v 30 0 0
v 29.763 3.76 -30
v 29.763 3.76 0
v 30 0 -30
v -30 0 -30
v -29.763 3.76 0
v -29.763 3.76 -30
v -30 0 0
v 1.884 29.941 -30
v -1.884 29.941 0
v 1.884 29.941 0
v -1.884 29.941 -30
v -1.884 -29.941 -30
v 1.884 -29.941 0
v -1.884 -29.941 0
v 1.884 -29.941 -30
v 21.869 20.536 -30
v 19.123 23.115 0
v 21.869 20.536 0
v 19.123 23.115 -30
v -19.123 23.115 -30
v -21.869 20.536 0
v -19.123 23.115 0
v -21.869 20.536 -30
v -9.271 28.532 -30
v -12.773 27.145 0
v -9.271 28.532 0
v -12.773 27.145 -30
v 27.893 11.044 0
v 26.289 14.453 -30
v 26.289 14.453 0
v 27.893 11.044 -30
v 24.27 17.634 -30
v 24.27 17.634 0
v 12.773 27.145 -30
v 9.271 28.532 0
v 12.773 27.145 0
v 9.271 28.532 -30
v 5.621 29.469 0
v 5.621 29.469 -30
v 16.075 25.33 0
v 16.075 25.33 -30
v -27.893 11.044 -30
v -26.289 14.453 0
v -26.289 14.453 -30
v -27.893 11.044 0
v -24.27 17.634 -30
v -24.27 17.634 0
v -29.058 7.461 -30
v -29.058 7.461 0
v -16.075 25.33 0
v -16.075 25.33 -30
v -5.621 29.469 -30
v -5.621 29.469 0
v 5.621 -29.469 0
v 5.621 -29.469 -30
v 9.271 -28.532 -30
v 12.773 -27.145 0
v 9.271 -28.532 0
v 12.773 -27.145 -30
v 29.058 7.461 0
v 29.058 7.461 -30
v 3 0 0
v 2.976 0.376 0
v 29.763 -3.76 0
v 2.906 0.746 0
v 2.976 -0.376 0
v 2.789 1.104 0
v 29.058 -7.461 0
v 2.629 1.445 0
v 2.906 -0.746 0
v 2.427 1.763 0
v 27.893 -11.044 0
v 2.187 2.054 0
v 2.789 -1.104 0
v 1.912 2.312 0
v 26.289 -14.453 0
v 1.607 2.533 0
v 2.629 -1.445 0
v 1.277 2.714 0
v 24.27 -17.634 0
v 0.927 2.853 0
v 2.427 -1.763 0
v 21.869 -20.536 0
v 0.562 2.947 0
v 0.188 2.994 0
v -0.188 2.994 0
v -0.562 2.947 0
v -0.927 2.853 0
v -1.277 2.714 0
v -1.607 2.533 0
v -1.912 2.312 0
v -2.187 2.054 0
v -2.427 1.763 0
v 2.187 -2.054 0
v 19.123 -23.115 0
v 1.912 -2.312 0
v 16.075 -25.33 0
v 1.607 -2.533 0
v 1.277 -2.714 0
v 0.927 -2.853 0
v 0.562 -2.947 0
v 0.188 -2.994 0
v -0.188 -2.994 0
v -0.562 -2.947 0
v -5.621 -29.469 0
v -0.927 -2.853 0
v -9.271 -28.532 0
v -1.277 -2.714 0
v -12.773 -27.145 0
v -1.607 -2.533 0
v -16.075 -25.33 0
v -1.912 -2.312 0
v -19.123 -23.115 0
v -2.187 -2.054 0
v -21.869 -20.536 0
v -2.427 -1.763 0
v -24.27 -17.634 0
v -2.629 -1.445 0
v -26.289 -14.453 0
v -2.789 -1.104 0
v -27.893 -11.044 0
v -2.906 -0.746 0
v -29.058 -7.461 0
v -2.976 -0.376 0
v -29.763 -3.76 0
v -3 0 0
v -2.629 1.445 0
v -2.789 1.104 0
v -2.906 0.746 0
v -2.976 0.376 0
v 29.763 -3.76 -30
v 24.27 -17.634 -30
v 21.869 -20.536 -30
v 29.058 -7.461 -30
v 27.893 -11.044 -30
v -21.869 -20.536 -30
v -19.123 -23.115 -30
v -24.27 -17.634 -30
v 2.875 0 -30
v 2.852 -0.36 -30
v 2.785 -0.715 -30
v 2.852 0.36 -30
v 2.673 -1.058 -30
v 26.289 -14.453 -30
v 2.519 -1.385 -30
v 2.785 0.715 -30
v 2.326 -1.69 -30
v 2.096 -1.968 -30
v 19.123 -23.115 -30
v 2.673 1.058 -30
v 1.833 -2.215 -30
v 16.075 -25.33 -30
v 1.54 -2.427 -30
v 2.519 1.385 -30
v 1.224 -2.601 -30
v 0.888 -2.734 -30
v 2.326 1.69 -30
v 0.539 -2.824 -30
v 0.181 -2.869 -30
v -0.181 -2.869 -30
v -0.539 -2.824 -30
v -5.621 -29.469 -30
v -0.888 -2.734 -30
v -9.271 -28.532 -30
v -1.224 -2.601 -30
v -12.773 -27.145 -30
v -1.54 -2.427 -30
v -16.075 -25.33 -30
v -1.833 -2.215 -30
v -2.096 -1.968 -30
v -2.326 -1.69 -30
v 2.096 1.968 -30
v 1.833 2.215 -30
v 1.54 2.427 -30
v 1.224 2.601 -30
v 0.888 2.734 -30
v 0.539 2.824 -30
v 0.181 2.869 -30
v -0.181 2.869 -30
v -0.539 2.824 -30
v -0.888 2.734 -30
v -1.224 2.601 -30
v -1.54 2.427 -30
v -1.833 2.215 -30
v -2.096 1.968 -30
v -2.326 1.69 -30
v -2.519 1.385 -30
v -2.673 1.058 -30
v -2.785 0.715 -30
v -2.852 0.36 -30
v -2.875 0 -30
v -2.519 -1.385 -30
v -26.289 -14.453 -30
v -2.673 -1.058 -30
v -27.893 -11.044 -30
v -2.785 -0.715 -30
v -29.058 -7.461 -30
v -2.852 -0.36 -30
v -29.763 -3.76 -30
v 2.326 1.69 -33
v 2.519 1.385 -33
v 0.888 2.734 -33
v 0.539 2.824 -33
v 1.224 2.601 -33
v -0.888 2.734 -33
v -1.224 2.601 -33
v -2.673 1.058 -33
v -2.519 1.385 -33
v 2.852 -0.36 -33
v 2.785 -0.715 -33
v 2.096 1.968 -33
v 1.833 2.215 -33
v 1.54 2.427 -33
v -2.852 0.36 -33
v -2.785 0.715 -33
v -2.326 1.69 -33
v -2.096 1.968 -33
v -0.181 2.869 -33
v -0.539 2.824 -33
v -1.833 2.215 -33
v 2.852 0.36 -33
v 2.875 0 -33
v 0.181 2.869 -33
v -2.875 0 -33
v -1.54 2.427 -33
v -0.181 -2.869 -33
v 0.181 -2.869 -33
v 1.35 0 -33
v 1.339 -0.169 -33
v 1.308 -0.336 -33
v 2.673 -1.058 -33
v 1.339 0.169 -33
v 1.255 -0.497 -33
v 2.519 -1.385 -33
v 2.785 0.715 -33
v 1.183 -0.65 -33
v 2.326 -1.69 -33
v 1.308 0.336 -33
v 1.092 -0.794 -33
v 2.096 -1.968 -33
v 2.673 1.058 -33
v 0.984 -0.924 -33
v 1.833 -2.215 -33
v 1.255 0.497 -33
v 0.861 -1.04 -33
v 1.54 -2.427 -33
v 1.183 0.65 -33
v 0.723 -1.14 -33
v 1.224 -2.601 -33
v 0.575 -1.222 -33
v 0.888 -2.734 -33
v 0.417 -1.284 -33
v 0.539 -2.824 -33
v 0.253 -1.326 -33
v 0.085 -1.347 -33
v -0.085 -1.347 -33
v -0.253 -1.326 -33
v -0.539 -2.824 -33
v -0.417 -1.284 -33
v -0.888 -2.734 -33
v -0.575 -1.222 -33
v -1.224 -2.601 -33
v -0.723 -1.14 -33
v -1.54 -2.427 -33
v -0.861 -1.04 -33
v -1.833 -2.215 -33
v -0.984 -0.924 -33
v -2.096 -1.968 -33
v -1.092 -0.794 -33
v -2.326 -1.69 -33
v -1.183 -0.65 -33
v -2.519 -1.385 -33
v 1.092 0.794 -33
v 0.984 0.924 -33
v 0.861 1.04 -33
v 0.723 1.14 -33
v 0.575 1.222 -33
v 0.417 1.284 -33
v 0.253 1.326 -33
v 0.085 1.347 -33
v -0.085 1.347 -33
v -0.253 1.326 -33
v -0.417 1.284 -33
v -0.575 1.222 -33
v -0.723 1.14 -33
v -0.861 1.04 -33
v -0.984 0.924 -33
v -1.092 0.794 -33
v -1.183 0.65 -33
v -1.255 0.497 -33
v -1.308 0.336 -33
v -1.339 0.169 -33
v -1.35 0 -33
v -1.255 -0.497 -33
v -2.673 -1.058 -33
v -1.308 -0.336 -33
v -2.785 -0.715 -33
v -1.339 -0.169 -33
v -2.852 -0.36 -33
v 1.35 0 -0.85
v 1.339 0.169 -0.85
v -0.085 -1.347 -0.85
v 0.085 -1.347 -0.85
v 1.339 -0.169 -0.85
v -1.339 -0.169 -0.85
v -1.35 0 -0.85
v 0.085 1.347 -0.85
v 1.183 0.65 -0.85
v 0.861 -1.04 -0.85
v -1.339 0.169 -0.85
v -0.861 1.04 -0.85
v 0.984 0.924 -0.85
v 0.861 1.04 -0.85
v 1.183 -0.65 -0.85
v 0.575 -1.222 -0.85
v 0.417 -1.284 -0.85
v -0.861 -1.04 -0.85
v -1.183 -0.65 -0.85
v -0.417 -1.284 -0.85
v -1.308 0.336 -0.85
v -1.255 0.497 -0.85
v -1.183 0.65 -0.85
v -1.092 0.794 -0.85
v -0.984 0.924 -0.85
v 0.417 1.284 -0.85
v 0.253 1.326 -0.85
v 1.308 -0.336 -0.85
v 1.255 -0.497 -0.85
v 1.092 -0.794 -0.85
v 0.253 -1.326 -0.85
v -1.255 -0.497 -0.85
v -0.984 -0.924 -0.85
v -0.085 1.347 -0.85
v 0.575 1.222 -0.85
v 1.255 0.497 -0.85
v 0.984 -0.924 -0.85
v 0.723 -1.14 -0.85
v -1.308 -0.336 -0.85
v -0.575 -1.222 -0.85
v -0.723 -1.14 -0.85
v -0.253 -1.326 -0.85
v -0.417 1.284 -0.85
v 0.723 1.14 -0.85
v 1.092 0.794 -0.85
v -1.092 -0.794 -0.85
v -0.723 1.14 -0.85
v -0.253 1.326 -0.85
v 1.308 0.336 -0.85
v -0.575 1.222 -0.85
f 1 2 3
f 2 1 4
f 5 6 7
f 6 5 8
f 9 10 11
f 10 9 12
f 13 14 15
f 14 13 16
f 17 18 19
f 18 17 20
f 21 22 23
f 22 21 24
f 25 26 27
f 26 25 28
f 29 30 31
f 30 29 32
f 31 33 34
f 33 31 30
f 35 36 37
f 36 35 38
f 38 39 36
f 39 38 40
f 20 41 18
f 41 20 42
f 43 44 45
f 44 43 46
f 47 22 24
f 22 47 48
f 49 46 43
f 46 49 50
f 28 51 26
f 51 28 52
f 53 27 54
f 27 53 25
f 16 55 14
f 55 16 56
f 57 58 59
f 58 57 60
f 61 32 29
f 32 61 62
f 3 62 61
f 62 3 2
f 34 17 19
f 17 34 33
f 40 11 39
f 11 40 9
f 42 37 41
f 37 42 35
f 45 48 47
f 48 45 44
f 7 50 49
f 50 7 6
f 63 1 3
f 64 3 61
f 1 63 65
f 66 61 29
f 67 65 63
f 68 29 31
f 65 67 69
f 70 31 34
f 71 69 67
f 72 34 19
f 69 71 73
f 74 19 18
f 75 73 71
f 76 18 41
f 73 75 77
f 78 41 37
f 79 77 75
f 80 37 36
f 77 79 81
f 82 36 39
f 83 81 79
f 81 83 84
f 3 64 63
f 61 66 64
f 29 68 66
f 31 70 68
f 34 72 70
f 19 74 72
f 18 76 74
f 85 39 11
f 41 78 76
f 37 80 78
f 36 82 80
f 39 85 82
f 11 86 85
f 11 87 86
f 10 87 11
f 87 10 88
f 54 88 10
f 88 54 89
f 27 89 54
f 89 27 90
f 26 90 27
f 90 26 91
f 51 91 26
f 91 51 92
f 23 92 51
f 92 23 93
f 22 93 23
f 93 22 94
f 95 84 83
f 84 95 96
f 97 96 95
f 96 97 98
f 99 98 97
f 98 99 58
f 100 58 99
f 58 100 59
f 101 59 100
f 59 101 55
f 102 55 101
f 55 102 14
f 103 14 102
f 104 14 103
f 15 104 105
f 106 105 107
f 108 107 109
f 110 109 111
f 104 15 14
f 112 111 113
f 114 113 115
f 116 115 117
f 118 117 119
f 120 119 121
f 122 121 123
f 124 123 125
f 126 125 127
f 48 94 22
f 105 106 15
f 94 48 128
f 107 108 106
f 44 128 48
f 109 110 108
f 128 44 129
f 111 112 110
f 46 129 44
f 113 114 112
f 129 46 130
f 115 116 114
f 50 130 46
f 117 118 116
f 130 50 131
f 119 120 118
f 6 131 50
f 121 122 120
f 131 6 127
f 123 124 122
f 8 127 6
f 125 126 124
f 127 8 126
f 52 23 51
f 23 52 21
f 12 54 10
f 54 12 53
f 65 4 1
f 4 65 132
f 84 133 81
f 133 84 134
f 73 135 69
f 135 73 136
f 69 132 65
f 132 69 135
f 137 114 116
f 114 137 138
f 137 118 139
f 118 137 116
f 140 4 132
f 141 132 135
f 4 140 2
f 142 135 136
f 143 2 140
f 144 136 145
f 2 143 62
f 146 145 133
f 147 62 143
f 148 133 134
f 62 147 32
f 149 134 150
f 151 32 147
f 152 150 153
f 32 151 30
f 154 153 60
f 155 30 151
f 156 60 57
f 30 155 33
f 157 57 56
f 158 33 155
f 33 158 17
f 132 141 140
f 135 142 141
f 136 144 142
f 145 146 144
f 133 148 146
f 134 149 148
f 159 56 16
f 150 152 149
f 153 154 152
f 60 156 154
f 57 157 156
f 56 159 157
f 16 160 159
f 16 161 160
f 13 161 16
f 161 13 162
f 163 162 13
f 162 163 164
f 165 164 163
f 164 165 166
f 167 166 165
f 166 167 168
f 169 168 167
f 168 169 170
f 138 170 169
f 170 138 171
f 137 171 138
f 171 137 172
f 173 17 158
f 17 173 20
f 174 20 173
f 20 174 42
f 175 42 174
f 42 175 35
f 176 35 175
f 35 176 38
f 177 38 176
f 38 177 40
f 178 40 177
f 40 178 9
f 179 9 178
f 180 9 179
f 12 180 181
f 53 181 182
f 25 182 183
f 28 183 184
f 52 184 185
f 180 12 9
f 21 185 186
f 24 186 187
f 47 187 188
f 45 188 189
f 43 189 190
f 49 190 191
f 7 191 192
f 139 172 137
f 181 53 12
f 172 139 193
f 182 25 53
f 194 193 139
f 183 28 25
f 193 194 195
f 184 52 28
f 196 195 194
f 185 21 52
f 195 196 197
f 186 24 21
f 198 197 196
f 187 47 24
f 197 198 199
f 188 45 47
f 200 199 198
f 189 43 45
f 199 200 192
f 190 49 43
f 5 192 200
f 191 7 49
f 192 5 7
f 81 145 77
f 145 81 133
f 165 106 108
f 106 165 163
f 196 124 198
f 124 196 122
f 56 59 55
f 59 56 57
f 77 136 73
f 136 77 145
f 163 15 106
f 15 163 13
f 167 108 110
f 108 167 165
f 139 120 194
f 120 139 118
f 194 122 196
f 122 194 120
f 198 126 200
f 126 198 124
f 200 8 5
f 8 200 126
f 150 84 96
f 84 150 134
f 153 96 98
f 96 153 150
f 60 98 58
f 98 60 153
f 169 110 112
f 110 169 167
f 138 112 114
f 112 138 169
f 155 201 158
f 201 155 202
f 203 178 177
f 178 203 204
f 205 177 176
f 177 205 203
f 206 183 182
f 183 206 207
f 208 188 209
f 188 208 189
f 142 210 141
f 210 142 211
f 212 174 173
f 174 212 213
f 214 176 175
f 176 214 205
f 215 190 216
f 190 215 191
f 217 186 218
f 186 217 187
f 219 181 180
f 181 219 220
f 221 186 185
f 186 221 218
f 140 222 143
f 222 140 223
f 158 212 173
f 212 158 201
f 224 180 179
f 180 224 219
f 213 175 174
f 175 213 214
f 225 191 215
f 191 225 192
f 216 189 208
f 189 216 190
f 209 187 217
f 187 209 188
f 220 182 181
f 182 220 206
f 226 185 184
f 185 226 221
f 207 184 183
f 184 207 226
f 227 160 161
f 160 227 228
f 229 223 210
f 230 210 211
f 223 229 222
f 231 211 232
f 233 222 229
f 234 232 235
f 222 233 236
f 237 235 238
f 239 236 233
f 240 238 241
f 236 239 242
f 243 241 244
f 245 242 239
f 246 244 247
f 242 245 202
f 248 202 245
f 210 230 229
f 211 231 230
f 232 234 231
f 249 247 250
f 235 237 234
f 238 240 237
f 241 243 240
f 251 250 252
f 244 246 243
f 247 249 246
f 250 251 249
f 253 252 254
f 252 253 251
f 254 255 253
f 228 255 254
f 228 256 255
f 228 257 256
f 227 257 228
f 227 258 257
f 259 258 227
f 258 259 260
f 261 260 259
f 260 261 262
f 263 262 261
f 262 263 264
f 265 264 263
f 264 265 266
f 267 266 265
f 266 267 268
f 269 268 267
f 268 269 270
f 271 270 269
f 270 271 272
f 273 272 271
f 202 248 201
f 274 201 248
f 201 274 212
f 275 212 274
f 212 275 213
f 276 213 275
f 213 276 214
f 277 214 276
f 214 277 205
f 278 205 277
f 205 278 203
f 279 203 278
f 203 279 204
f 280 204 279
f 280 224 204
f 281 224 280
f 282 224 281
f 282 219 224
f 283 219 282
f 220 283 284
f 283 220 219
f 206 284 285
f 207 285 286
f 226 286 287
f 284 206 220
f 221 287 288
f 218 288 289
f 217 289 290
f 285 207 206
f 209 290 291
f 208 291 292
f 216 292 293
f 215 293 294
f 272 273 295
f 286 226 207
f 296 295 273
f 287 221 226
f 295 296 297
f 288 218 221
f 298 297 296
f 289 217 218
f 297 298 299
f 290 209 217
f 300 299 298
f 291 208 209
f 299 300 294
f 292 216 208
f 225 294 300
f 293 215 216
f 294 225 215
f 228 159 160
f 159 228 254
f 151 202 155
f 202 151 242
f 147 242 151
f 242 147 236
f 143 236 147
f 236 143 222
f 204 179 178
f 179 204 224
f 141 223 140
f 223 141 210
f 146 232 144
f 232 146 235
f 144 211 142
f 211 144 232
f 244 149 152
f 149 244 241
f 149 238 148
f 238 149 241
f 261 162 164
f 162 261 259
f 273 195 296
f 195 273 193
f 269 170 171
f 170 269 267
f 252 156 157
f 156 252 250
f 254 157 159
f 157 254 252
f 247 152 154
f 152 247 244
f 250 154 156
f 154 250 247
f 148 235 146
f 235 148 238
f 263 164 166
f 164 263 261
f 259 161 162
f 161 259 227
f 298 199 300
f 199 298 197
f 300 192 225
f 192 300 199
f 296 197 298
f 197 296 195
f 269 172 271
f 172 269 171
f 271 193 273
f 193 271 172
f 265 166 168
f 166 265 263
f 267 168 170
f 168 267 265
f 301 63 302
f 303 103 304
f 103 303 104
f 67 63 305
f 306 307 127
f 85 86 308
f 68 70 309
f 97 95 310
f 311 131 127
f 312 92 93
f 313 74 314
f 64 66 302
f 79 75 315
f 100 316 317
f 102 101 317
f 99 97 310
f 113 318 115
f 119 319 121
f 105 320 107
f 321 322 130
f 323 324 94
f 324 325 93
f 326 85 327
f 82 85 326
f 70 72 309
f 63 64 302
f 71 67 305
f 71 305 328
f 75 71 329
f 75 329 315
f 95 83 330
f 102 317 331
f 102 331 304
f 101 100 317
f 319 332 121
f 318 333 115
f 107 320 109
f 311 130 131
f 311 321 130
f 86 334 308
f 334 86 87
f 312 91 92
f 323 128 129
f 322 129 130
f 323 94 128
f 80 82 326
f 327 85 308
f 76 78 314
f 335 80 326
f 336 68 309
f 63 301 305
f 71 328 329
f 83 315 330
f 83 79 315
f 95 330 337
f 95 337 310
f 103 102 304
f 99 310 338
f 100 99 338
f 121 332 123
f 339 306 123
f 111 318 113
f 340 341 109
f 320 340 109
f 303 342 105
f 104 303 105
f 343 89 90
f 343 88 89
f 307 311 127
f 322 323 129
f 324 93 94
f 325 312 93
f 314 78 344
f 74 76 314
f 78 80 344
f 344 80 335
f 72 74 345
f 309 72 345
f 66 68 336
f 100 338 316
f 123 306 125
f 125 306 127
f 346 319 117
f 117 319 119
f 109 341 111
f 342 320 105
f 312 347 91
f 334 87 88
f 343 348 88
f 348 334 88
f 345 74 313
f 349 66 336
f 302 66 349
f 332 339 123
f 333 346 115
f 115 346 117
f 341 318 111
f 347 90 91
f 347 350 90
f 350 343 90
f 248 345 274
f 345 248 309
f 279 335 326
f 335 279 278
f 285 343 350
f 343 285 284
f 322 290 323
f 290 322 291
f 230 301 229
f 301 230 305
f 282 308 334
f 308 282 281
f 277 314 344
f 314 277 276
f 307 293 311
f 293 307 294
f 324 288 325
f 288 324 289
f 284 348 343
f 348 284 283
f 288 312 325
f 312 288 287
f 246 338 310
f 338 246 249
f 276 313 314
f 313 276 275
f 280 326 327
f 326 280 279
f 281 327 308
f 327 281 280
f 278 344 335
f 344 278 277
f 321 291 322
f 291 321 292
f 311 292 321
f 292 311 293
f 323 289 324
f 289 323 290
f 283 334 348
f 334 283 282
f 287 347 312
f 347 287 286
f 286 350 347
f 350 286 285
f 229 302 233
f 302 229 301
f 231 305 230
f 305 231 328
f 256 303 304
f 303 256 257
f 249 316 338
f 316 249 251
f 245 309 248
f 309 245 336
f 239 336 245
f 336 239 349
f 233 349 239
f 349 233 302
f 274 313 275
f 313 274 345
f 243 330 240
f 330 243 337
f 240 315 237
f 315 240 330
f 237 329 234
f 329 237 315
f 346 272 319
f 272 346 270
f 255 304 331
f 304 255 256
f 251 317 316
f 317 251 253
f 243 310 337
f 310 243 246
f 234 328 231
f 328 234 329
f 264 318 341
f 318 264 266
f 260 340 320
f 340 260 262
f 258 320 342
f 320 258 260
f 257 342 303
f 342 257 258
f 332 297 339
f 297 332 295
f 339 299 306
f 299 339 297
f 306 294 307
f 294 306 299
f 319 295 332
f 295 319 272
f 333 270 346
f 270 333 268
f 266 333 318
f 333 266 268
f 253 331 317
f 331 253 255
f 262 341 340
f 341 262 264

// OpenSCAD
$fn = 50;


difference() {
	union() {
		translate(v = [0, 0, -30.0000000000]) {
			cylinder(h = 30, r = 30.0000000000);
		}
		#translate(v = [0, 0, -33.0000000000]) {
			cylinder(h = 33, r = 2.8750000000);
		}
	}
	union() {
		translate(v = [0, 0, 0]) {
			rotate(a = [0, 0, 0]) {
				difference() {
					union() {
						translate(v = [0, 0, -33.0000000000]) {
							cylinder(h = 33, r = 1.0000000000);
						}
						translate(v = [0, 0, -0.8500000000]) {
							cylinder(h = 0.8500000000, r1 = 1.3500000000, r2 = 3.0000000000);
						}
						translate(v = [0, 0, -33.0000000000]) {
							cylinder(h = 33, r = 1.3500000000);
						}
						translate(v = [0, 0, -33.0000000000]) {
							cylinder(h = 33, r = 1.0000000000);
						}
					}
					union();
				}
			}
		}
	}
}
